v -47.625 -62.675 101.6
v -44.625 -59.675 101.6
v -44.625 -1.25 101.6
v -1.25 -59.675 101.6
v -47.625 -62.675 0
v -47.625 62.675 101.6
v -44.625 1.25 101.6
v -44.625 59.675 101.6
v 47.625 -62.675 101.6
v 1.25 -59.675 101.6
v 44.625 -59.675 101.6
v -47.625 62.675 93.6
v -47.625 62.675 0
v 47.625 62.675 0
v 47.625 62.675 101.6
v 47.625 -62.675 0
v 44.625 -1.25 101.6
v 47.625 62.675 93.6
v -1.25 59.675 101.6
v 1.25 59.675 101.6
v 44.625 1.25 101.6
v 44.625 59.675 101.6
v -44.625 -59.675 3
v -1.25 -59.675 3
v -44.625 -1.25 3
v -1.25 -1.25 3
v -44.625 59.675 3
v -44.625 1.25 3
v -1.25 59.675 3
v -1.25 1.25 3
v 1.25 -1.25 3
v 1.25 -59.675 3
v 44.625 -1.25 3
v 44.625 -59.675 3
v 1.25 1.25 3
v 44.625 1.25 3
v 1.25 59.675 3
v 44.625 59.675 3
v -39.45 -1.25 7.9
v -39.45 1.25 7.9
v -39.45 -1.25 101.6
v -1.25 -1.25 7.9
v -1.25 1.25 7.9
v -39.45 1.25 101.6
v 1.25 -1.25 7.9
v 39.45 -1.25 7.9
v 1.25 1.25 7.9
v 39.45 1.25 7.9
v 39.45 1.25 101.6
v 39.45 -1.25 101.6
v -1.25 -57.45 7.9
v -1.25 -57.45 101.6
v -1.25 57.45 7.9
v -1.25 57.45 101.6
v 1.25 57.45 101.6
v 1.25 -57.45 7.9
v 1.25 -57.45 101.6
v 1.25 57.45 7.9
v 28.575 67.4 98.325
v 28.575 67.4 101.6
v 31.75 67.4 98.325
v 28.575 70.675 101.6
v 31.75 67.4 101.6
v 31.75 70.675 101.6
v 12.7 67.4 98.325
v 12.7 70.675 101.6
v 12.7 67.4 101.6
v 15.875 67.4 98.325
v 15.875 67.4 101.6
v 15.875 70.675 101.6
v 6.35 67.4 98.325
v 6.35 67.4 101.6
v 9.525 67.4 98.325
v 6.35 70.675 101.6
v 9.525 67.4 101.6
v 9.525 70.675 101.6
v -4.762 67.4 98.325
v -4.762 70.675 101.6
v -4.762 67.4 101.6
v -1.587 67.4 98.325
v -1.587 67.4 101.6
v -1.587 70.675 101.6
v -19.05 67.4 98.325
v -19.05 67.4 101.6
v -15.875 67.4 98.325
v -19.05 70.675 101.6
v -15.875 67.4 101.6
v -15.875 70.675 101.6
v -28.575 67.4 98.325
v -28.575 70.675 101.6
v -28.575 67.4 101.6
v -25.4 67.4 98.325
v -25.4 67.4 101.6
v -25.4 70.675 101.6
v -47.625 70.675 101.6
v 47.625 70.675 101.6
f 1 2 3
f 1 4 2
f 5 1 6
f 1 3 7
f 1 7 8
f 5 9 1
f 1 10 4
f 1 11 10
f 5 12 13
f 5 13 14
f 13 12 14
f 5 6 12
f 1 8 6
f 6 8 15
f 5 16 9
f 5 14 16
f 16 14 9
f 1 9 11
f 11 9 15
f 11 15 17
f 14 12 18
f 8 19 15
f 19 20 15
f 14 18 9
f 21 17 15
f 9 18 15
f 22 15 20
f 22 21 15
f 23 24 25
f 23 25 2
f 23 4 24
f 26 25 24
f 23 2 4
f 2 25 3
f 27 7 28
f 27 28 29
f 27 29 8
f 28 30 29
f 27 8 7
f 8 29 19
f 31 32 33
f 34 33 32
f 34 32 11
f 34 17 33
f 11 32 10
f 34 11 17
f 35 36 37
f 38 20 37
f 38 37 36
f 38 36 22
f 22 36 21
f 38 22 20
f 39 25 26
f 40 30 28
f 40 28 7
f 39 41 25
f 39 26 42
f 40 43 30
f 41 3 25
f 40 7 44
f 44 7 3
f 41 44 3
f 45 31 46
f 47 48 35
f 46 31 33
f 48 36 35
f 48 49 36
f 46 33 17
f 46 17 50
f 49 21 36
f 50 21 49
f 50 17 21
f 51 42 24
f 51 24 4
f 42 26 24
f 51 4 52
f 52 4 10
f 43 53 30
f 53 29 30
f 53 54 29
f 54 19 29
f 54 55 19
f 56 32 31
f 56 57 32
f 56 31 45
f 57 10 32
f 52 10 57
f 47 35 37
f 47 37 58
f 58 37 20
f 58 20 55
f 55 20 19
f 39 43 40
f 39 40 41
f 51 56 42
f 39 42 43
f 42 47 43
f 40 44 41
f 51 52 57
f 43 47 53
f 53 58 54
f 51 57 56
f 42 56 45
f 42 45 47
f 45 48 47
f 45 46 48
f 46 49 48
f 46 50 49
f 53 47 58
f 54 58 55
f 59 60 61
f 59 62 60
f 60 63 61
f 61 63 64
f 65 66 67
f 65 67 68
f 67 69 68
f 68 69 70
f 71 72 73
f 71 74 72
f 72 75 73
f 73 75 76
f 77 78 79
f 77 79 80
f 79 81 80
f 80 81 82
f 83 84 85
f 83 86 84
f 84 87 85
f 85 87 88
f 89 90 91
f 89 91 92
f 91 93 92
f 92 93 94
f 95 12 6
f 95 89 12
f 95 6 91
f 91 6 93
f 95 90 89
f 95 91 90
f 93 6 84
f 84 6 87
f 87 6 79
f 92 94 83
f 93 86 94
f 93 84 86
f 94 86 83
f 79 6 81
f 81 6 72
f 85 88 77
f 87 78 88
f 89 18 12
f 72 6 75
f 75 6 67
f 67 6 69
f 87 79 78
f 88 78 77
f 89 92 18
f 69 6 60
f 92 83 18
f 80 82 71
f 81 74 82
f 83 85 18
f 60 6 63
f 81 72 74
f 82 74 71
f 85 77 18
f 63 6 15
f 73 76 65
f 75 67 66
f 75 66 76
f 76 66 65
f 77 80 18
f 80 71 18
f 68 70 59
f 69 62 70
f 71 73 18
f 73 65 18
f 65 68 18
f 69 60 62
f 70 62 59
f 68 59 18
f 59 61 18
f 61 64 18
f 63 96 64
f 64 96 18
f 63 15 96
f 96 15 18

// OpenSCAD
/* ================================================================
   Cytiva / GE Healthcare ÄKTA avant F9-C Fraction Collector
   Outer Cooling Box  —  6-position (2 × 3)

   Inner tray (cytiva_50ml_inner_tray.scad) sits inside with
   5 mm clearance on all sides.
   ================================================================ */

// ── Render quality ──────────────────────────────────────────────
$fn = 64;

// ================================================================
//  PARAMETERS  (edit here)
// ================================================================

// — Tube geometry (must match inner tray) ────────────────────────
tube_od        = 29.0;
tube_clearance = 0.6;

// — Cassette layout (must match inner tray) ──────────────────────
n_cols         = 2;
n_rows         = 3;
col_pitch      = 36.0;
row_pitch      = 36.0;

// — Inner tray dimensions (must match inner tray) ────────────────
tray_wall      = 3.0;
wall           = 3.0;
base_t         = 2.5;
pocket_depth   = 102.5;

// — Outer cooling box ────────────────────────────────────────────
outer_gap      = 5.0;    // Air gap between inner tray and outer box walls (mm)
outer_wall     = 3.0;    // Outer box wall & floor thickness (mm)
rib_t          = 2.5;    // Support rib thickness (mm)
rib_clearance  = 0.25;   // Clearance per side between inner tray and ribs (mm)
// Outside dimensions (fixed)
ob_w           = 95.25;  // 3.75 in
ob_d           = 125.35; // 5.25 in minus barcode tab protrusion (133.35 - 8.0 mm)
ob_h           = 101.6;  // 4.00 in

// — Barcode tab ──────────────────────────────────────────────────
bc_tab_proj    = 8.0;    // Protrusion of triangular brace from short end face (mm)
bc_notch_w     = 3.175;  // Notch width  (1/8 in)
bc_notch_len   = 3.175;  // Notch depth into tab from tip (1/8 in)
// Left edge of each notch measured from the left edge of the outer box (mm):
// 5/8", 1.25", 1.5", 1-15/16", 2.5", 2-7/8"
bc_notch_offsets = [15.875, 31.75, 38.1, 49.2125, 63.5, 73.025];

// ================================================================
//  DERIVED DIMENSIONS  (do not edit)
// ================================================================

pocket_d = tube_od + tube_clearance * 2;
cyl_od   = pocket_d + 2 * wall;
body_h   = base_t + pocket_depth;

tray_inner_w = (n_cols - 1) * col_pitch + cyl_od;
tray_inner_d = (n_rows - 1) * row_pitch + cyl_od;
tray_outer_w = tray_inner_w + 2 * tray_wall;
tray_outer_d = tray_inner_d + 2 * tray_wall;

ob_inner_w = ob_w - 2 * outer_wall;
ob_inner_d = ob_d - 2 * outer_wall;

// ================================================================
//  MODULES
// ================================================================

// ── Outer cooling box (5-sided open-top) ──────────────────────
module outer_box() {
    difference() {
        translate([-ob_w / 2, -ob_d / 2, 0])
            cube([ob_w, ob_d, ob_h]);
        translate([-ob_inner_w / 2, -ob_inner_d / 2, outer_wall])
            cube([ob_inner_w, ob_inner_d, ob_h]);
    }
}

// ── Support ribs ──────────────────────────────────────────────
//   1 rib along X at Y = 0 (bisects long dimension)
//   1 rib along Y at X = 0 (bisects short dimension)
module support_ribs() {
    rib_z = outer_wall;              // ribs sit on top of the floor
    rib_h = ob_h - outer_wall;      // ribs stop flush with the top of the box

    difference() {
        union() {
            // Along X (bisects long / Y dimension)
            translate([-ob_inner_w / 2, -rib_t / 2, rib_z])
                cube([ob_inner_w, rib_t, rib_h]);
            // Along Y (bisects short / X dimension)
            translate([-rib_t / 2, -ob_inner_d / 2, rib_z])
                cube([rib_t, ob_inner_d, rib_h]);
        }
        // Clear rib material only where the inner tray sits (above the gap)
        // +rib_clearance per side so the inner tray slides in freely
        translate([-(tray_outer_w / 2 + rib_clearance) - 0.1,
                   -(tray_outer_d / 2 + rib_clearance) - 0.1,
                   outer_wall + outer_gap - 0.1])
            cube([tray_outer_w + 2 * rib_clearance + 0.2,
                  tray_outer_d + 2 * rib_clearance + 0.2,
                  rib_h + 0.2]);
    }
}

// ── Barcode tab (short +Y face, top) ──────────────────────────
//   Triangular brace at top of +Y face; 6 notches cut from the tip inward.
module barcode_tab() {
    end_y  = ob_d / 2;

    difference() {
        translate([-ob_w / 2, end_y, ob_h])
            rotate([0, 90, 0])
                linear_extrude(height = ob_w)
                    polygon([[0, 0], [bc_tab_proj, 0], [0, bc_tab_proj]]);

        // Each notch: bc_notch_w wide (X), bc_notch_len deep from tip (Y)
        for (offset = bc_notch_offsets) {
            nx = ob_w / 2 - offset - bc_notch_w;
            translate([nx,
                       end_y + bc_tab_proj - bc_notch_len - 0.1,
                       ob_h - bc_tab_proj - 0.1])
                cube([bc_notch_w,
                      bc_notch_len + 0.2,
                      bc_tab_proj + 0.2]);
        }
    }
}

// ================================================================
//  ASSEMBLY
// ================================================================

outer_box();
support_ribs();
barcode_tab();
